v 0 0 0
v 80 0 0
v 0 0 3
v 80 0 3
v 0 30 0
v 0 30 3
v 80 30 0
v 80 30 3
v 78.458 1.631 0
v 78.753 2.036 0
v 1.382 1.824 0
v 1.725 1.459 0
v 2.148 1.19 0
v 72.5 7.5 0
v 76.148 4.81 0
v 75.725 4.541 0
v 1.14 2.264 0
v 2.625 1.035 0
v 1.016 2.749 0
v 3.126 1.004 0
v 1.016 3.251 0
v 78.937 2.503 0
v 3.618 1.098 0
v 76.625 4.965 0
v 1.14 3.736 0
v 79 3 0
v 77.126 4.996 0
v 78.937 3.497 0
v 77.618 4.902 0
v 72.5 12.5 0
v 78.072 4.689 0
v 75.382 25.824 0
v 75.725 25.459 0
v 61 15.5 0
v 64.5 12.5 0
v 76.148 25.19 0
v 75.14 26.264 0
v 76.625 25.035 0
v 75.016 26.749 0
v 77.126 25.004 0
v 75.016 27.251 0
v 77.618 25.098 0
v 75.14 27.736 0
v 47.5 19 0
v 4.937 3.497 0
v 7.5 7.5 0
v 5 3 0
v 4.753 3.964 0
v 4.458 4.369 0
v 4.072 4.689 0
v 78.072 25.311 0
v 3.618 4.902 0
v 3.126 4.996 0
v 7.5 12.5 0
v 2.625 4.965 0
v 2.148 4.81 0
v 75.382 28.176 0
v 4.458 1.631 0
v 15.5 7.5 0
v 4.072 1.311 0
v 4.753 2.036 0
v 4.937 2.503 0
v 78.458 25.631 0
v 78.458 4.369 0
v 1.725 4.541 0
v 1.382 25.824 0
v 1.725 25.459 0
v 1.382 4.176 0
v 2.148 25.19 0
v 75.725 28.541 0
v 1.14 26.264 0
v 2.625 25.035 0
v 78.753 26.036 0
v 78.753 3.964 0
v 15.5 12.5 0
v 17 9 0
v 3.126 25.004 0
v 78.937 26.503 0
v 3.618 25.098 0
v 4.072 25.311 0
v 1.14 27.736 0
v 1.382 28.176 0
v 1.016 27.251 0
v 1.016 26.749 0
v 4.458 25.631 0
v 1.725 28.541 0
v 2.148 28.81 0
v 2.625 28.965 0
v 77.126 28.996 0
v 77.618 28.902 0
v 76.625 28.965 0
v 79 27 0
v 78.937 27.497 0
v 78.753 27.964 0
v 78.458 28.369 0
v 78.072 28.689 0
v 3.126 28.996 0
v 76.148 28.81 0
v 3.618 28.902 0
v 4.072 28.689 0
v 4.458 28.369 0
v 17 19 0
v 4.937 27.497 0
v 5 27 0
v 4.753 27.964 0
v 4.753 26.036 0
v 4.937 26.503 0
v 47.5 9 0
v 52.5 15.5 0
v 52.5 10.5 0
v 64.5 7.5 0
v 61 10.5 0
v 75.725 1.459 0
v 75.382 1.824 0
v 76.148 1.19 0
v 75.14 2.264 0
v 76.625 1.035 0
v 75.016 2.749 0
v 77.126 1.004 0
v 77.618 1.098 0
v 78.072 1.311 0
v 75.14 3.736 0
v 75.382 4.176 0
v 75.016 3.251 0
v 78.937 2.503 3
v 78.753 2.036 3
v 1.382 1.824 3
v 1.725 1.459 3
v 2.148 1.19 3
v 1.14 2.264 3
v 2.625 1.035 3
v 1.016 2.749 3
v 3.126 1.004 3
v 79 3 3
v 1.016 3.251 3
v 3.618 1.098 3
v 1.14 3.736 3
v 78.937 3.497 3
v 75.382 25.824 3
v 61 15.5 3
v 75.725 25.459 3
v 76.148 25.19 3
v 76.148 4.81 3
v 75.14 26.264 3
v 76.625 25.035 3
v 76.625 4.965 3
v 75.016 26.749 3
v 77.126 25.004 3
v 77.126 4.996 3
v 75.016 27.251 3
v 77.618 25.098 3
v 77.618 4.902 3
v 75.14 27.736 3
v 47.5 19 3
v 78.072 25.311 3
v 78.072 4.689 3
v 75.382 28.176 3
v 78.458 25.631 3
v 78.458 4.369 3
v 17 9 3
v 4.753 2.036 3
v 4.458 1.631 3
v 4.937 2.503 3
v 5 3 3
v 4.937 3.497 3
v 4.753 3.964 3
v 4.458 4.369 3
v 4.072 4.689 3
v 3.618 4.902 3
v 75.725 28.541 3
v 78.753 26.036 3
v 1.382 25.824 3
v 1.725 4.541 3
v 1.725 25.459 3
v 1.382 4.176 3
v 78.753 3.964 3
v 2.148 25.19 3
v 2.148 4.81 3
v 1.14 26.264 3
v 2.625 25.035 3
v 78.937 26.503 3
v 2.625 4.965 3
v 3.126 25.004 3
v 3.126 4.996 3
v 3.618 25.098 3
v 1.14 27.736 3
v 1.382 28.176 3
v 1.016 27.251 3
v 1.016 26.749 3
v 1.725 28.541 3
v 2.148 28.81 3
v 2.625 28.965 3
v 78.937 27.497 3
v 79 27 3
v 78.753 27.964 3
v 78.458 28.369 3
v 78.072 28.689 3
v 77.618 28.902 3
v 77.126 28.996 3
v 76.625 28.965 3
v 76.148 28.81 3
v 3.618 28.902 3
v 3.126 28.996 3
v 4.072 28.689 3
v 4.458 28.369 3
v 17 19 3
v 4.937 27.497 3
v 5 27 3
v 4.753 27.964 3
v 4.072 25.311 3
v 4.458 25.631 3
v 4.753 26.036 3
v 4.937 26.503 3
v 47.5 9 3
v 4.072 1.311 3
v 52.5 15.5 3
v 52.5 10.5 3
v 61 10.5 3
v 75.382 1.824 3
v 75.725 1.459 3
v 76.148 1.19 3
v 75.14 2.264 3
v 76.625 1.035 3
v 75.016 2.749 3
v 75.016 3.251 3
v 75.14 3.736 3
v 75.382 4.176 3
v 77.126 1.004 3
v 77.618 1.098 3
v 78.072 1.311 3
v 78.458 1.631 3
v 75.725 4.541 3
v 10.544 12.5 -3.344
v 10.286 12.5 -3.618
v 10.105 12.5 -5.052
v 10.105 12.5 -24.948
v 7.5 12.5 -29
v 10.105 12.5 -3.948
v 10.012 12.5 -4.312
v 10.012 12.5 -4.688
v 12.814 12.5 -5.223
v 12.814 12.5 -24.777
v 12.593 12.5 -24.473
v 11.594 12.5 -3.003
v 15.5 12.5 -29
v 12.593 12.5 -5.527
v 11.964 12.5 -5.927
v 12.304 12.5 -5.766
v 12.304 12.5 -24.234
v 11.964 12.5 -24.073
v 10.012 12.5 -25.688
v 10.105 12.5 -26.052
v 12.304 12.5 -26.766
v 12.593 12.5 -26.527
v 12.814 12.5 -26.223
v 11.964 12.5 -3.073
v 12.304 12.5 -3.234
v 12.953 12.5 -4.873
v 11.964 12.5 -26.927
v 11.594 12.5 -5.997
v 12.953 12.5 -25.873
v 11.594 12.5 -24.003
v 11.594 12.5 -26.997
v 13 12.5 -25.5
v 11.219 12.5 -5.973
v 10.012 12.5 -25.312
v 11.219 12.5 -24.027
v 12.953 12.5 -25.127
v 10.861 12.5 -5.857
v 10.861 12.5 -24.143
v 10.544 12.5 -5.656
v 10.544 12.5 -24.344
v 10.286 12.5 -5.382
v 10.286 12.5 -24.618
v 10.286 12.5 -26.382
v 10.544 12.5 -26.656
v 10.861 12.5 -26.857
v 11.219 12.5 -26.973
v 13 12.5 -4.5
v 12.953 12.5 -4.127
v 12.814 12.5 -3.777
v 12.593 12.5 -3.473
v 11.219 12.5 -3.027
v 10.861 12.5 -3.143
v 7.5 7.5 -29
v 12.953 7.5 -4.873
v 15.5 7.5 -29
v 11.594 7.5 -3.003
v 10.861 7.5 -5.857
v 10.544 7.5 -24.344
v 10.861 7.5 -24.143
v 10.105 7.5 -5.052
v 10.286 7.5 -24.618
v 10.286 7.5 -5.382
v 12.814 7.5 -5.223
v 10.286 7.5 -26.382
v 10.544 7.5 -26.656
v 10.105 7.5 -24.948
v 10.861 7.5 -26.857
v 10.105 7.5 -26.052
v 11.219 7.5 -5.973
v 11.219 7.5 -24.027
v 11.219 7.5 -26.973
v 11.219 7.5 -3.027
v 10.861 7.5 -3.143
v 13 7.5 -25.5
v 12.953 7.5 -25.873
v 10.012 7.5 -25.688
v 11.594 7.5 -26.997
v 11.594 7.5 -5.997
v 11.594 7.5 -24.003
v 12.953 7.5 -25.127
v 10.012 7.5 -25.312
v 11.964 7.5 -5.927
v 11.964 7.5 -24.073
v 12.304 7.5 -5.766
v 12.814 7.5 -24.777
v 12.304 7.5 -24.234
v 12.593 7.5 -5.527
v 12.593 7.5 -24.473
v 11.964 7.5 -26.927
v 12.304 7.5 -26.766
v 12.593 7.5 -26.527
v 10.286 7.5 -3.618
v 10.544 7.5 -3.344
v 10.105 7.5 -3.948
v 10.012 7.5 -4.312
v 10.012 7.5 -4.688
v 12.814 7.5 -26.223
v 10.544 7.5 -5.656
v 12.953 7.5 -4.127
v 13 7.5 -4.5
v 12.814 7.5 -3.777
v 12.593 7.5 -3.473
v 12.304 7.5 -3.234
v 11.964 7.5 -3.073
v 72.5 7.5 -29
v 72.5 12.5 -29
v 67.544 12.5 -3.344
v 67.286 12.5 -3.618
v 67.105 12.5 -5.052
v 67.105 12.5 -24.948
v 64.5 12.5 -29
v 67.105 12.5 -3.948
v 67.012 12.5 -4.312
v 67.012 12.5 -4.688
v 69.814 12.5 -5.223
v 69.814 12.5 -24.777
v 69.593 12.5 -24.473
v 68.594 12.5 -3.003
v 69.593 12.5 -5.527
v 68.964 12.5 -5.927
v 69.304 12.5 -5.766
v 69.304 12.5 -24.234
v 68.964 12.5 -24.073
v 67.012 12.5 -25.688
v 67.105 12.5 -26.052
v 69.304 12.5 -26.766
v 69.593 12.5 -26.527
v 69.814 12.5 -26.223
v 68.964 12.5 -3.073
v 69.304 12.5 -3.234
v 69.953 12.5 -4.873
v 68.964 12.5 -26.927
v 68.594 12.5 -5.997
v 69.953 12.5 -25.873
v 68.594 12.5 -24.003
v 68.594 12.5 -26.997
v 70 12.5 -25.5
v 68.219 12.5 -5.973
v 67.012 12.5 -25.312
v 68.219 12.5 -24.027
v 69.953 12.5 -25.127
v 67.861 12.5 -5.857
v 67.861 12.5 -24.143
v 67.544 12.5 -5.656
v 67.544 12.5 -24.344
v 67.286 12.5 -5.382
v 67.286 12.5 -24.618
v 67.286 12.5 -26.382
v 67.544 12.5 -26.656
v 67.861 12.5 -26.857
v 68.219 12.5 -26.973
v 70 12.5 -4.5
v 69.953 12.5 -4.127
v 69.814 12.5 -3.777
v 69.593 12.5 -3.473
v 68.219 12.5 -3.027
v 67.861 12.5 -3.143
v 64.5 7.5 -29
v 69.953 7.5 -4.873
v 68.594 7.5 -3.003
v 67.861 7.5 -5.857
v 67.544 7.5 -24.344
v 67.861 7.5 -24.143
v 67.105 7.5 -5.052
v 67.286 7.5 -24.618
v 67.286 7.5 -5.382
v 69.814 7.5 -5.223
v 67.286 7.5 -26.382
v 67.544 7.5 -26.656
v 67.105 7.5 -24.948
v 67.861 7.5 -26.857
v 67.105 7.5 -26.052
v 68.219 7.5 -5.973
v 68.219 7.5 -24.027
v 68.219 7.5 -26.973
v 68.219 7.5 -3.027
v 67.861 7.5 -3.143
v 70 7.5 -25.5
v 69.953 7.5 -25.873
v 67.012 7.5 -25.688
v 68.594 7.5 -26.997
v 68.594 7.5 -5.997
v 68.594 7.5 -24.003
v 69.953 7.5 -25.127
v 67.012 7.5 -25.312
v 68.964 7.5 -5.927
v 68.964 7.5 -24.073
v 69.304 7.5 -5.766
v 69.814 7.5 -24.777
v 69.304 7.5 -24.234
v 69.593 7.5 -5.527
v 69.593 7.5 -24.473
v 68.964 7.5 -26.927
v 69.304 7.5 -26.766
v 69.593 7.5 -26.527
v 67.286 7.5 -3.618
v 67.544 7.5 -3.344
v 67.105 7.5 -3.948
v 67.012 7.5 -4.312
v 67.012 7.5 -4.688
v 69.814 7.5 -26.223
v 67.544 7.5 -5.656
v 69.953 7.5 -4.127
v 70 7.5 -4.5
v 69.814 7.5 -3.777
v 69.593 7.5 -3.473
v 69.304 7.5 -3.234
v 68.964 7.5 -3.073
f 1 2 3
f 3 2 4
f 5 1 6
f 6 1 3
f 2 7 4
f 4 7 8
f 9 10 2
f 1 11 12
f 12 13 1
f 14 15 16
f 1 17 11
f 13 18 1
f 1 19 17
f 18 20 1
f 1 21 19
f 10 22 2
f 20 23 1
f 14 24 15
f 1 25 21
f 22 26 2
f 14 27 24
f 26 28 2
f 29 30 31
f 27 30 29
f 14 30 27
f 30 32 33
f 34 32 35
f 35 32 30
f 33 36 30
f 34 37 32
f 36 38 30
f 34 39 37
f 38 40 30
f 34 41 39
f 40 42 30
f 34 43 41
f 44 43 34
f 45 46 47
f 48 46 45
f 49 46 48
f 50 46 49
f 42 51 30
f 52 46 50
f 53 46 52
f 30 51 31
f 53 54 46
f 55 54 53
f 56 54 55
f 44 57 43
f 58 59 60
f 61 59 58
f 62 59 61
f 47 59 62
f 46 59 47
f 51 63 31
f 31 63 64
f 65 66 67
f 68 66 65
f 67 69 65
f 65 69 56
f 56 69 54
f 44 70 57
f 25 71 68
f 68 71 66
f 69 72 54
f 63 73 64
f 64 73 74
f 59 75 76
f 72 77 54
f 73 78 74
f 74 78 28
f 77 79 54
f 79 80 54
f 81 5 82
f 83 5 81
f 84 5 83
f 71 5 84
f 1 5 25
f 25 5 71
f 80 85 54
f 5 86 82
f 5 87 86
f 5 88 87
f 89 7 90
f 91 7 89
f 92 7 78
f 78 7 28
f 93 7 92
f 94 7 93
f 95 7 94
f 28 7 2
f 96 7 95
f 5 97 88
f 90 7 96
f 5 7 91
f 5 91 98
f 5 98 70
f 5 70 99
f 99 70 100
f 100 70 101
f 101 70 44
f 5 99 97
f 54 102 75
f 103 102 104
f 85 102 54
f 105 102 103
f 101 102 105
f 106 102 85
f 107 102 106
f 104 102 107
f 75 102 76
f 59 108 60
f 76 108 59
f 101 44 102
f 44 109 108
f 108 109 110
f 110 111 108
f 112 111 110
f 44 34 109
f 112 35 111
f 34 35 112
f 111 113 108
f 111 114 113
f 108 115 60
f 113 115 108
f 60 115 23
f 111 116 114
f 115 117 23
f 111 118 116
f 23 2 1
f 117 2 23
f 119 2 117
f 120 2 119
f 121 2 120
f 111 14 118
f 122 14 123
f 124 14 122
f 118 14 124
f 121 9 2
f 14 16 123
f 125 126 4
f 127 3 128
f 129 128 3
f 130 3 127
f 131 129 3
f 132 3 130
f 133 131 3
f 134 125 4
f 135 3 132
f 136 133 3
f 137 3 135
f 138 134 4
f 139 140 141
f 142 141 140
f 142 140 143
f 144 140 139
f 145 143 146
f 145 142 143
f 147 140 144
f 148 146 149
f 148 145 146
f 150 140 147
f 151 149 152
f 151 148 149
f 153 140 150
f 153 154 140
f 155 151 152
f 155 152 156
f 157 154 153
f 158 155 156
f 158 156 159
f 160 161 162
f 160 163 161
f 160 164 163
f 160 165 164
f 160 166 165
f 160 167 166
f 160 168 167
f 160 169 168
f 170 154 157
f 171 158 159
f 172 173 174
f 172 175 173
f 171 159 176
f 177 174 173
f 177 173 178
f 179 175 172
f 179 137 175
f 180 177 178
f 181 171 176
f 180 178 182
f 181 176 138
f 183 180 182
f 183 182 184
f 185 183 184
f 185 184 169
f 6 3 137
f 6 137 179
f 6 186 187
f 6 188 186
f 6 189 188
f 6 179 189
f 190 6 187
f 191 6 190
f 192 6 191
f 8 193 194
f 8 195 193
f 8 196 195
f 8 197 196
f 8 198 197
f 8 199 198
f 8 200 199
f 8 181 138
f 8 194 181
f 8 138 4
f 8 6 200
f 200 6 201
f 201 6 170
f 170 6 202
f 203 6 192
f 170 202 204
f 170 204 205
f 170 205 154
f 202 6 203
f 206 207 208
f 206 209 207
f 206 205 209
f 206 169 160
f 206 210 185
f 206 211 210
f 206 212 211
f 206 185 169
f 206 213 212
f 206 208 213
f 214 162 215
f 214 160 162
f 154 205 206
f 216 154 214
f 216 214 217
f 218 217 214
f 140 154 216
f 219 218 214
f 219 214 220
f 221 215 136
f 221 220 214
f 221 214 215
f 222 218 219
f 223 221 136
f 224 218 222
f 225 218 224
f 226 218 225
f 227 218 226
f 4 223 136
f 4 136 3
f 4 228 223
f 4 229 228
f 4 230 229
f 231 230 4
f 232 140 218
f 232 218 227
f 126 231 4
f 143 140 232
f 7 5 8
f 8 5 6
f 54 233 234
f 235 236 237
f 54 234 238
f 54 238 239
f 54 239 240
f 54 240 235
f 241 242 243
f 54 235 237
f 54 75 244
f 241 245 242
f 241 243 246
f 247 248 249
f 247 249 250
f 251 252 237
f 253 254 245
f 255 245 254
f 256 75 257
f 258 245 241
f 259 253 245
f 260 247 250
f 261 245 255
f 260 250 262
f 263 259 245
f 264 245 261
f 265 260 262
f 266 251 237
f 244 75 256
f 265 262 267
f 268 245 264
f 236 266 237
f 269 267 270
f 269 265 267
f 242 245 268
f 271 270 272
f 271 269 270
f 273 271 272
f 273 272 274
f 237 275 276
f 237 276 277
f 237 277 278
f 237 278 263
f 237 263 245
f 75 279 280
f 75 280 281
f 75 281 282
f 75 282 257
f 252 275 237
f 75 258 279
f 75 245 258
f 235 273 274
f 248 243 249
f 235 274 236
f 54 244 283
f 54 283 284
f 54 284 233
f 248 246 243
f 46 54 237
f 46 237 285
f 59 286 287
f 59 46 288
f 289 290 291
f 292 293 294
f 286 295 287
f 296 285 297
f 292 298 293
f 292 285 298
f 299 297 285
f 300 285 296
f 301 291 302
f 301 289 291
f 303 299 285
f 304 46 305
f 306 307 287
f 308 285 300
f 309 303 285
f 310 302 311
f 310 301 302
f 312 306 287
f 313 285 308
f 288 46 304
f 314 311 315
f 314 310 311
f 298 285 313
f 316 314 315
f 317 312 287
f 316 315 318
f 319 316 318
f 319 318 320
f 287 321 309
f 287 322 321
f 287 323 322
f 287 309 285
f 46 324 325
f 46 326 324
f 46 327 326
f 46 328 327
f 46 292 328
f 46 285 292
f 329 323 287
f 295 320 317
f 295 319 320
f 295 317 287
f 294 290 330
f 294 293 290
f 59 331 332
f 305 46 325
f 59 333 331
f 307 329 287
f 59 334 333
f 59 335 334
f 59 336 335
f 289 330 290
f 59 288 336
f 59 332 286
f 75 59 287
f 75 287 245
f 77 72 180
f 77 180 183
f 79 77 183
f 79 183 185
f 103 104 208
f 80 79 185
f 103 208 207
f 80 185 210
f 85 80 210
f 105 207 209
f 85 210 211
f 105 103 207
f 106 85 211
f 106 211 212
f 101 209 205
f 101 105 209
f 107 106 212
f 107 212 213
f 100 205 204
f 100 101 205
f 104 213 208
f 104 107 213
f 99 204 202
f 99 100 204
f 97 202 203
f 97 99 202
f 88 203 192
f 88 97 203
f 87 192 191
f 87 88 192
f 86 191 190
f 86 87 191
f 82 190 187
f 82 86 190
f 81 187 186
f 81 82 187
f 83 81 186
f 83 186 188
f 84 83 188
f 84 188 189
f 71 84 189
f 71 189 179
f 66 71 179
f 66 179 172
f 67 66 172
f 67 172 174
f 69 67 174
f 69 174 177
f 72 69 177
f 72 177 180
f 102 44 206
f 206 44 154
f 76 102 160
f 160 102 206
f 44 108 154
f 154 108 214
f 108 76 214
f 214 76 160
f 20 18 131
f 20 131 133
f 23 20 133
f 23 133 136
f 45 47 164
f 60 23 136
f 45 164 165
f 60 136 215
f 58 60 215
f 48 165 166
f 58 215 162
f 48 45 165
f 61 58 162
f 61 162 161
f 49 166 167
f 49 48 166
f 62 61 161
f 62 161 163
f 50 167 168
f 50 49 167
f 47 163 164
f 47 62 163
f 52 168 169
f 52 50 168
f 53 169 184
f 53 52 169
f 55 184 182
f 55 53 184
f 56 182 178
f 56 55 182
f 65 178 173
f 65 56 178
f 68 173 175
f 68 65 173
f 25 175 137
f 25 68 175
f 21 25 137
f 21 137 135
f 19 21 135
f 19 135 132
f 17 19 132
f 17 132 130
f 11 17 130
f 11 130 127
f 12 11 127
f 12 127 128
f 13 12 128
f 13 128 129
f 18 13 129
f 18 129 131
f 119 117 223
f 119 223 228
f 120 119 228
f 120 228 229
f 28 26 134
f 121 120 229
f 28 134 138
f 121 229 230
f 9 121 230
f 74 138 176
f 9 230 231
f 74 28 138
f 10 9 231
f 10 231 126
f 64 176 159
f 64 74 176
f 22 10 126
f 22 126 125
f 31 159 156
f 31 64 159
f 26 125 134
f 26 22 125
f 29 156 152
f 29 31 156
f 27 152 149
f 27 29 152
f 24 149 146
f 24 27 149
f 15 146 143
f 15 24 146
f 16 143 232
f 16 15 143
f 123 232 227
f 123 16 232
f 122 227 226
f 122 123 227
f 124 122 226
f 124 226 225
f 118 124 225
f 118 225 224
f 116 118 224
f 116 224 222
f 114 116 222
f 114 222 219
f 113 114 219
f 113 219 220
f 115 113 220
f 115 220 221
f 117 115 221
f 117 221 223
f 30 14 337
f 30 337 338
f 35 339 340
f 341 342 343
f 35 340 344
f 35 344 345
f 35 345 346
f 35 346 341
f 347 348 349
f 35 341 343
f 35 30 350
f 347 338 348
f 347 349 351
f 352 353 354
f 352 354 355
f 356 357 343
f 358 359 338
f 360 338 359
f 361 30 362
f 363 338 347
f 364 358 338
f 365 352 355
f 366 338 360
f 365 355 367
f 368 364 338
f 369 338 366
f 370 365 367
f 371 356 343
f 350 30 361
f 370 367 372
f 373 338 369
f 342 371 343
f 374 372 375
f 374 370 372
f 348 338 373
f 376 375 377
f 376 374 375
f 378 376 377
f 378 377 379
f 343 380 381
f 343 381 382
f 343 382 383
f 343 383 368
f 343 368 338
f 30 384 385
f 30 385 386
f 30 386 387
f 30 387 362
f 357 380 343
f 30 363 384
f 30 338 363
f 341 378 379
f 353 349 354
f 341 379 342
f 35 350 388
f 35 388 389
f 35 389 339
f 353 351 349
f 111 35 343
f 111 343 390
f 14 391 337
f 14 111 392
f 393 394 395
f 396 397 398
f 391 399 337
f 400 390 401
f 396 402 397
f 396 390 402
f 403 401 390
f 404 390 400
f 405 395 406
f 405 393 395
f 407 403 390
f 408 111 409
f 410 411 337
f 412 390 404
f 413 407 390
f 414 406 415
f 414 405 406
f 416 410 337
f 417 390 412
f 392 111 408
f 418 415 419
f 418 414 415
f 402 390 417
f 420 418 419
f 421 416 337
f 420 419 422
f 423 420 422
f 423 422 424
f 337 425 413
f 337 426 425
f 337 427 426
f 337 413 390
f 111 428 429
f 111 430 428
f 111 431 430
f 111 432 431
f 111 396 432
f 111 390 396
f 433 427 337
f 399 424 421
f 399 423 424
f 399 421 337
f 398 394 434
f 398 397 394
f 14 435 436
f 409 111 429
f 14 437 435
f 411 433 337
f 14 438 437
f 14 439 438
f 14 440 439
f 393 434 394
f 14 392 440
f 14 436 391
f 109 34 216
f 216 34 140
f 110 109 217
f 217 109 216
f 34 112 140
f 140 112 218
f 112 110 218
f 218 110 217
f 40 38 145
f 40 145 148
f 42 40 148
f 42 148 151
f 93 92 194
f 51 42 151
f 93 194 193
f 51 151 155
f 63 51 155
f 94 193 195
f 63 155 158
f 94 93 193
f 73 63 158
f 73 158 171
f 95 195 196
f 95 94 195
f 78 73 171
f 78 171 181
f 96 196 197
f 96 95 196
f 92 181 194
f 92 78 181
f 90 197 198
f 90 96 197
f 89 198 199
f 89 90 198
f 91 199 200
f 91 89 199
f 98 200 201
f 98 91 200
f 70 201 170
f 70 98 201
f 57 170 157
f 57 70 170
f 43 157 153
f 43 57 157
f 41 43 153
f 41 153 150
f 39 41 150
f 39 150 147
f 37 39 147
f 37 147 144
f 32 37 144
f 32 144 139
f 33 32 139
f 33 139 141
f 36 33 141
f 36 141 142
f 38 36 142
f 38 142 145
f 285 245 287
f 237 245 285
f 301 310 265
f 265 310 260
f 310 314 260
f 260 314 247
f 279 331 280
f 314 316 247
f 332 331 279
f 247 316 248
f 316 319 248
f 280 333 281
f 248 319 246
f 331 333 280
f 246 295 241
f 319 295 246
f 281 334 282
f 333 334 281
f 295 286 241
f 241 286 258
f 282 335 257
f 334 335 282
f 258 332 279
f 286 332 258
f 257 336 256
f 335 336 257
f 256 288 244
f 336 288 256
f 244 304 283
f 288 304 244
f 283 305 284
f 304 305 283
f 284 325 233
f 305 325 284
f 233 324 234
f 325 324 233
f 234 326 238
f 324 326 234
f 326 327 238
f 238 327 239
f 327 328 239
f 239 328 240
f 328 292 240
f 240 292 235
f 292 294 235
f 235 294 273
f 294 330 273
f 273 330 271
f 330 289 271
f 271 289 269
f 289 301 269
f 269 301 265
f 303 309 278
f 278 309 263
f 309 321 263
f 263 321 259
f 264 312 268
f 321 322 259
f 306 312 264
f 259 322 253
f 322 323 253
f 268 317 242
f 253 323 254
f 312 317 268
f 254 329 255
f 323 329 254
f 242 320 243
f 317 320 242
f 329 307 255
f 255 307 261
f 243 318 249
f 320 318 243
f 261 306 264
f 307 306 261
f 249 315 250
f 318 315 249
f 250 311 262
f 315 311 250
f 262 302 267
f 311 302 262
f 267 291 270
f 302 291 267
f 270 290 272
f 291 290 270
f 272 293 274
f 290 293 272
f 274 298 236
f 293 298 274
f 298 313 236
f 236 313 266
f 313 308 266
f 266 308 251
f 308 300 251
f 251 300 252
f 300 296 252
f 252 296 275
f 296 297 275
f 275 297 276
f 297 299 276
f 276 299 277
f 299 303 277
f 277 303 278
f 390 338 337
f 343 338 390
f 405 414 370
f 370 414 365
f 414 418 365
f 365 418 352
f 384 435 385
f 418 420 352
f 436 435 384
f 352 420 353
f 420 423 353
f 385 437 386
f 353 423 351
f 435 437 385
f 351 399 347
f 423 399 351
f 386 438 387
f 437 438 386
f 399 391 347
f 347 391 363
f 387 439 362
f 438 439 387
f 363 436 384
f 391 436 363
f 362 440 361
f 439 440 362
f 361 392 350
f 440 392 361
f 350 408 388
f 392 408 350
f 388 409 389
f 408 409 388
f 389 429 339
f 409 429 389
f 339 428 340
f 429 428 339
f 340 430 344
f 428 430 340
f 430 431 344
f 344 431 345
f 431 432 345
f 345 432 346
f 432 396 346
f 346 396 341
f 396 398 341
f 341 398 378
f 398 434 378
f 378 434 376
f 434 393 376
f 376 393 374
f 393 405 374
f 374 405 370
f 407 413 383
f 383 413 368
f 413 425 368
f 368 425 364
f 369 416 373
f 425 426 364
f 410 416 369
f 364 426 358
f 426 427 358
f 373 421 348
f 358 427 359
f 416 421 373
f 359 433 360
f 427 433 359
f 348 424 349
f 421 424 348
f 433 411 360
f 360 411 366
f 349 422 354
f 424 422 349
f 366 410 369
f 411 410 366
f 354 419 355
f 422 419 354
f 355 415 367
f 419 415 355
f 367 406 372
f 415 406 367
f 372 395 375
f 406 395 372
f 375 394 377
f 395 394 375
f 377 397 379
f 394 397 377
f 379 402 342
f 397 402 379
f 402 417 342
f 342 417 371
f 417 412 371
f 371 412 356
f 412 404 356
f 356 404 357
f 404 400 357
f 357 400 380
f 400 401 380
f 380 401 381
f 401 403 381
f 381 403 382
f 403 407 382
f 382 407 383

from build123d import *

# Parameters (mm, degrees)
SKETCH_W     = 80
SKETCH_H     = 30
SKETCH_R     = 2
SKETCH_W_2   = 8.5
SKETCH_H_2   = 5
SKETCH_W_3   = 30.5
SKETCH_H_3   = 10
PAD_DEPTH    = 3
SKETCH002_W  = 8
SKETCH002_H  = 5
PAD001_DEPTH = 29
SKETCH003_R  = 1.5
POCKET_DEPTH = 30.001


with BuildPart() as part:
    # Sketch → Pad (new body)
    with BuildSketch(Plane.XY):
        with Locations((40, 15)):
            Rectangle(SKETCH_W, SKETCH_H)
        with Locations((3, 27)):
            Circle(SKETCH_R, mode=Mode.SUBTRACT)
        with Locations((77, 27)):
            Circle(SKETCH_R, mode=Mode.SUBTRACT)
        with Locations((77, 3)):
            Circle(SKETCH_R, mode=Mode.SUBTRACT)
        with Locations((3, 3)):
            Circle(SKETCH_R, mode=Mode.SUBTRACT)
        with Locations((56.75, 13)):
            Rectangle(SKETCH_W_2, SKETCH_H_2, mode=Mode.SUBTRACT)
        with Locations((32.25, 14)):
            Rectangle(SKETCH_W_3, SKETCH_H_3, mode=Mode.SUBTRACT)
    extrude(amount=PAD_DEPTH)

    # Sketch002 (on Sketch) → Pad001 (join)
    with BuildSketch(Plane(origin=(0, 0, 0), x_dir=(1, 0, 0), z_dir=(0, 0, -1))):
        with Locations((11.5, -10)):
            Rectangle(SKETCH002_W, SKETCH002_H)
        with Locations((68.5, -10)):
            Rectangle(SKETCH002_W, SKETCH002_H)
    extrude(amount=PAD001_DEPTH)

    # Sketch003 → Pocket (cut, through all)
    with BuildSketch(Plane.XZ):
        with Locations((11.5, -4.5)):
            Circle(SKETCH003_R)
        with Locations((68.5, -4.5)):
            Circle(SKETCH003_R)
        with Locations((11.5, -25.5)):
            Circle(SKETCH003_R)
        with Locations((68.5, -25.5)):
            Circle(SKETCH003_R)
    extrude(amount=-POCKET_DEPTH, mode=Mode.SUBTRACT)


solid = part.part
